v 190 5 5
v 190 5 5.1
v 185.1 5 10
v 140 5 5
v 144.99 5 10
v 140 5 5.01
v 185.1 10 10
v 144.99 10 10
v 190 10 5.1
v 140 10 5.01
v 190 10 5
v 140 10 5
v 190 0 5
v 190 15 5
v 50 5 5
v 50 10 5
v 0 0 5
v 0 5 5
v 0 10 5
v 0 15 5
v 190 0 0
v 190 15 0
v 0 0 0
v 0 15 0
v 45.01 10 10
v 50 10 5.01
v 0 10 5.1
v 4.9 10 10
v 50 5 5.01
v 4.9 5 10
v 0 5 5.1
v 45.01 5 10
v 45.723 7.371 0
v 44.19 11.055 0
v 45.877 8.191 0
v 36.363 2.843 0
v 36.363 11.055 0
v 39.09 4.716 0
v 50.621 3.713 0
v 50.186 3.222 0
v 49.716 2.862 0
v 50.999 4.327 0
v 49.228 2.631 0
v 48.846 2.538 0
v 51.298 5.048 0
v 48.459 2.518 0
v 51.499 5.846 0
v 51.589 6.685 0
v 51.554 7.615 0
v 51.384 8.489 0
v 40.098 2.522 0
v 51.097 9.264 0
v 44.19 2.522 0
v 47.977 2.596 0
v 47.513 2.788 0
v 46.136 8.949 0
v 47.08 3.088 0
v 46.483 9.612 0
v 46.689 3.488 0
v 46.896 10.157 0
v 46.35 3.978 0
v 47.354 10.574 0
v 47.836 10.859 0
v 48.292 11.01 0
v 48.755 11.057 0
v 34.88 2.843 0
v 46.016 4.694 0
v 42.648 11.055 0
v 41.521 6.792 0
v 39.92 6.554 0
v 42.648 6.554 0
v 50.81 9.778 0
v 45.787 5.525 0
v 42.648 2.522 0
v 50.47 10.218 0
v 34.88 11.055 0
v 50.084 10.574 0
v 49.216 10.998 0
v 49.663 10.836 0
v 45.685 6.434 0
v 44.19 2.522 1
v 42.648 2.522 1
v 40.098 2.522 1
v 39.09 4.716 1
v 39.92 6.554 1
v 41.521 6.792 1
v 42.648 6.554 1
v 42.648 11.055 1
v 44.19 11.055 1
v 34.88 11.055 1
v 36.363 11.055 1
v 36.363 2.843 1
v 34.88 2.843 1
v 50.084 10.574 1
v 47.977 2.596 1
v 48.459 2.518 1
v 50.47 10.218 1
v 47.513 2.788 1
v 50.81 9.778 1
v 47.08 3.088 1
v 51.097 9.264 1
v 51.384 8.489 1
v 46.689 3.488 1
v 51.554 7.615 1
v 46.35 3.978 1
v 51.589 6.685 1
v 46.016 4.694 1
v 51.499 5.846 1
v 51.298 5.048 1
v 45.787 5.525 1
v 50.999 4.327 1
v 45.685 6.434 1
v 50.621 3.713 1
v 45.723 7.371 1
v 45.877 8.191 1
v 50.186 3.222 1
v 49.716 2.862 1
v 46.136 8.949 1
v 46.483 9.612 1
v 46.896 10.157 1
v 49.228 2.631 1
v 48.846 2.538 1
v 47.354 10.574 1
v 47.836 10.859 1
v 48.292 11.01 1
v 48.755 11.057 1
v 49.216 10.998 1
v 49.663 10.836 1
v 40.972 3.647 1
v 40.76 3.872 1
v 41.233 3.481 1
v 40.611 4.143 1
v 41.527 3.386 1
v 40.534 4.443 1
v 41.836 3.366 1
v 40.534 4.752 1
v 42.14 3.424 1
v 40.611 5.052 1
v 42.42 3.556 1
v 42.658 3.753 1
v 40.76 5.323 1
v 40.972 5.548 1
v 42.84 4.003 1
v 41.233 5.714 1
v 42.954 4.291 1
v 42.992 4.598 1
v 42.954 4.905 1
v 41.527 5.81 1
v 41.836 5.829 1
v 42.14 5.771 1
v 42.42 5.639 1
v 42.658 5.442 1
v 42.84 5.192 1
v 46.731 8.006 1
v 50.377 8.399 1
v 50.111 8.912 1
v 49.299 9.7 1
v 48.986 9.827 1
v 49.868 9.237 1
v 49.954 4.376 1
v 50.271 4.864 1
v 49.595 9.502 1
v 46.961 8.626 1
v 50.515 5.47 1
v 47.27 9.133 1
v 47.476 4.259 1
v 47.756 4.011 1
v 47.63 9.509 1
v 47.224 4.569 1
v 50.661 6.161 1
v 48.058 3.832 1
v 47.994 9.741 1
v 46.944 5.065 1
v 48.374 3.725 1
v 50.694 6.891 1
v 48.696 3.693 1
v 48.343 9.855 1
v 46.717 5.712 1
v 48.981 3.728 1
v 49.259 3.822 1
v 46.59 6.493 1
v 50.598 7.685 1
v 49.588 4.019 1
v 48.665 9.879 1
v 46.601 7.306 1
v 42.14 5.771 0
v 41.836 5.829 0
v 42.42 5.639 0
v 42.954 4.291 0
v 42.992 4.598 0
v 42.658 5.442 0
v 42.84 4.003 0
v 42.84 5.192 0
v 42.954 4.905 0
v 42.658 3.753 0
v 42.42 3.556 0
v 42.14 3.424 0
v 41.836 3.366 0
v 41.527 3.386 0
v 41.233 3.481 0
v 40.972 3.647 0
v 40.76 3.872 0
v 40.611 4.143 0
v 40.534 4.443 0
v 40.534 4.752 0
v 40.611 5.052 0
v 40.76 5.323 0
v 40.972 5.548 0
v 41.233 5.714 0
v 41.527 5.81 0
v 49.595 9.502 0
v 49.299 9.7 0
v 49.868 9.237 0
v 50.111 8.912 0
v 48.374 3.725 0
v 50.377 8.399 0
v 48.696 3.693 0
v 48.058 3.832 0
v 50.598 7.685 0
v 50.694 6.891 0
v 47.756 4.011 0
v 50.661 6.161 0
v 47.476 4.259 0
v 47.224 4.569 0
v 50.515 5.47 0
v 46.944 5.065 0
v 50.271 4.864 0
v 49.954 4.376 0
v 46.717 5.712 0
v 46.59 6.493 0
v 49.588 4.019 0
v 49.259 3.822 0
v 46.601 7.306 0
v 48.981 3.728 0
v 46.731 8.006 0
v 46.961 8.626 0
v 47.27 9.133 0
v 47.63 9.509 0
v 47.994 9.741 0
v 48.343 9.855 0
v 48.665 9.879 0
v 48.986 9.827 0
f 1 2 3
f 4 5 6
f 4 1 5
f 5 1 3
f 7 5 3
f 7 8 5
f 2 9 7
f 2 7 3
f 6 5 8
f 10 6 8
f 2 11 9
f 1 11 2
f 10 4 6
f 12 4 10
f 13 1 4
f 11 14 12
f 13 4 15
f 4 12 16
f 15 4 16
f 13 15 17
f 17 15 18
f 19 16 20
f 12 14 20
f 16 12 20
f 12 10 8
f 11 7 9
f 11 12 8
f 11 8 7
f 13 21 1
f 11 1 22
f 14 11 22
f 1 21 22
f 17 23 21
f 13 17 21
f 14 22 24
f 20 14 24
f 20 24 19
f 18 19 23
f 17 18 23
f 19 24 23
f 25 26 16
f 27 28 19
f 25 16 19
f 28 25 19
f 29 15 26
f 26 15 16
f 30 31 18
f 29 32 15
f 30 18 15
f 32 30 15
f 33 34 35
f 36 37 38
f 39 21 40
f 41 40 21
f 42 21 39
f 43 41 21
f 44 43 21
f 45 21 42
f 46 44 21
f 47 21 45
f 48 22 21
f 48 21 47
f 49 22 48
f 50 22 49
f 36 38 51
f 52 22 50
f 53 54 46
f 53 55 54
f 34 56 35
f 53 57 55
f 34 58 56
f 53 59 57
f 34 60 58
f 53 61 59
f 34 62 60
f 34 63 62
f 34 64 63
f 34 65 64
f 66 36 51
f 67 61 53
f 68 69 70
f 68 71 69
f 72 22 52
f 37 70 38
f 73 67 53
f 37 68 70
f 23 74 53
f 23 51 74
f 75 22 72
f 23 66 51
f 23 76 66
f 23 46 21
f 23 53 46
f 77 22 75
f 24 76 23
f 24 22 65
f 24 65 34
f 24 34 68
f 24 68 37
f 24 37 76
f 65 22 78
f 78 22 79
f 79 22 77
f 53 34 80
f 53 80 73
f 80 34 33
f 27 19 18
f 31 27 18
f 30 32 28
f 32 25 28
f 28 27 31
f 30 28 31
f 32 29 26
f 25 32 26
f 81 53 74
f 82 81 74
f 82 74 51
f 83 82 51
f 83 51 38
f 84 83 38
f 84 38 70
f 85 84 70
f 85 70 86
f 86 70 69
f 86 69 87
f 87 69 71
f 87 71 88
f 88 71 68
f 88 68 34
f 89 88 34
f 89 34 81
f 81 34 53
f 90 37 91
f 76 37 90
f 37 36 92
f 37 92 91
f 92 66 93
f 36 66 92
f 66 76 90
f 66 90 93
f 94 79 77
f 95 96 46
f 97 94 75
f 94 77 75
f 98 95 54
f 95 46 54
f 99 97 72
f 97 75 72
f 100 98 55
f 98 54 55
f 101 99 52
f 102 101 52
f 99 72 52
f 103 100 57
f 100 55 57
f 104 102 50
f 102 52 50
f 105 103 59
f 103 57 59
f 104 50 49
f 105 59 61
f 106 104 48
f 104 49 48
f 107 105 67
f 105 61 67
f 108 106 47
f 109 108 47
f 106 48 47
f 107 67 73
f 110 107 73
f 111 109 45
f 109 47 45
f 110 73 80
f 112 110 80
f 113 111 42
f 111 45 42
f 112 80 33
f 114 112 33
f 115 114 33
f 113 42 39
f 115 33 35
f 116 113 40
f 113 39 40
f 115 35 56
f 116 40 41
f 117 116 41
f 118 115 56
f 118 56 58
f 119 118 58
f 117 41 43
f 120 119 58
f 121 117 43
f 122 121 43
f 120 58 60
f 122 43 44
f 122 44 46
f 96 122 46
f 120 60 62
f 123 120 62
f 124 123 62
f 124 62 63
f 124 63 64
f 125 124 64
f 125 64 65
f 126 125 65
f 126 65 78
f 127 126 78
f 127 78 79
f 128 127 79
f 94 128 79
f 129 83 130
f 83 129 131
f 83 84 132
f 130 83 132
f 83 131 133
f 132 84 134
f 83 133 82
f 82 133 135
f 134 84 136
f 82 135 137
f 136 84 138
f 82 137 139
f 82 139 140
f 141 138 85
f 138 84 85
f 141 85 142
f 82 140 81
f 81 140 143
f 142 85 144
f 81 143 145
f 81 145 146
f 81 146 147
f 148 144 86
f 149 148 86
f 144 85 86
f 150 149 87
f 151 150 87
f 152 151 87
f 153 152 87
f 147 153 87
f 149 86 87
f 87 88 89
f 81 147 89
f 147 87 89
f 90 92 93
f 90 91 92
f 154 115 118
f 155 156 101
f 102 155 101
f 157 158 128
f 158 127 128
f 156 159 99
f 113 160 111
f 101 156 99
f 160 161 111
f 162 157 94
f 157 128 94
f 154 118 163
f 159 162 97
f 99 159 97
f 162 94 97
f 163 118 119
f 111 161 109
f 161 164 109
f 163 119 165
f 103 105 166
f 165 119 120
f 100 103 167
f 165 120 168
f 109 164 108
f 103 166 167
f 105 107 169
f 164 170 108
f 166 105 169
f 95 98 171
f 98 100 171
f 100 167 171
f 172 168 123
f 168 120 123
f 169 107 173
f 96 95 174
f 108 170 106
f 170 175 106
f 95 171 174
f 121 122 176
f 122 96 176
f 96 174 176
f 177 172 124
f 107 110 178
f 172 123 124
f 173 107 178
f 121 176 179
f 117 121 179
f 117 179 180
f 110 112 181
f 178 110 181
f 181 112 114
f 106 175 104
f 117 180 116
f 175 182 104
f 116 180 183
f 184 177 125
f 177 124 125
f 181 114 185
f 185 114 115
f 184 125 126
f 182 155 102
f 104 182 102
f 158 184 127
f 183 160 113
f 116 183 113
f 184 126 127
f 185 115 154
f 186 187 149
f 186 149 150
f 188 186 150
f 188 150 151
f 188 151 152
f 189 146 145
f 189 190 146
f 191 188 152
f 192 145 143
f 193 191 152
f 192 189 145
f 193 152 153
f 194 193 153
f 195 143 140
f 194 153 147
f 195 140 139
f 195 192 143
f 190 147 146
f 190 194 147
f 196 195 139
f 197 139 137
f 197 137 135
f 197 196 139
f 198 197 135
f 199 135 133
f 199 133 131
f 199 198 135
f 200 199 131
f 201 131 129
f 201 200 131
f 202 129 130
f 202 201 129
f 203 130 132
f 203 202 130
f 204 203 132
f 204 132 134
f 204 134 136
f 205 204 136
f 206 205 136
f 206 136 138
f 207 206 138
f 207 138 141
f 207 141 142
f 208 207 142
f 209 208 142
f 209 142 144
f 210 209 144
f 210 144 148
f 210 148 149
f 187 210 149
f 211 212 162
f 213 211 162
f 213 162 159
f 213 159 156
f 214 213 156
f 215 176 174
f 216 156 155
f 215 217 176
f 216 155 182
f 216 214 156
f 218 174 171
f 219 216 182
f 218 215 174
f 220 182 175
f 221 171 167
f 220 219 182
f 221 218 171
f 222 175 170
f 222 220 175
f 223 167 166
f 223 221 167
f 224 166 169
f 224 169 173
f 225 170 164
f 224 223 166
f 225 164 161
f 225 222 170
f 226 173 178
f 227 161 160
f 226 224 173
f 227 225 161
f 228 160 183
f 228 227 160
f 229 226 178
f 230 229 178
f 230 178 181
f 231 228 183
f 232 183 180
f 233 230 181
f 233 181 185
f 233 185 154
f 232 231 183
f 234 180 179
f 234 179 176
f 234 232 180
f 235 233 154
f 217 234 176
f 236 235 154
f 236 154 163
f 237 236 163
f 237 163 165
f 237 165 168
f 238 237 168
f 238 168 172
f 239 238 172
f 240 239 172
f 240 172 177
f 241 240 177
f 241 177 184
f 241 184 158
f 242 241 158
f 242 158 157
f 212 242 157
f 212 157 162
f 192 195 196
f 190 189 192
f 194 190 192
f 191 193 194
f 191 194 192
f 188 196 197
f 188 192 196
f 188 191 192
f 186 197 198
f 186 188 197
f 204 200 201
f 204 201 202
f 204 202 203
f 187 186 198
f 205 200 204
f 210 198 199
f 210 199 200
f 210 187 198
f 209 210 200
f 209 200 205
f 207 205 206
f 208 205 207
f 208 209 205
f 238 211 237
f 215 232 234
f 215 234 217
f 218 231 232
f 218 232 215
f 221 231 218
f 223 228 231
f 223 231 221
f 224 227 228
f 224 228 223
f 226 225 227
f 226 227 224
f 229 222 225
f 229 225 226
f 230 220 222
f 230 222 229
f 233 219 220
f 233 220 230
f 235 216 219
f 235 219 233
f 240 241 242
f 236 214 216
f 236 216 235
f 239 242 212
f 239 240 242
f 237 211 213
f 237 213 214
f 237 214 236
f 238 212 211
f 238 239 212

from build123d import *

# Parameters (mm, degrees)
SKETCH_W        = 190
SKETCH_H        = 15
PAD_DEPTH       = 5
SKETCH001_W     = 50
SKETCH001_H     = 5
PAD001_DEPTH    = 5
CHAMFER_SIZE    = 4.99
CHAMFER001_SIZE = 4.9
SKETCH002_W     = 1.482422
SKETCH002_H     = 8.21213
SKETCH002_R     = 1.233891
POCKET_DEPTH    = 1


with BuildPart() as part:
    # Sketch → Pad (new body)
    with BuildSketch(Plane.XY):
        with Locations((95, 7.5)):
            Rectangle(SKETCH_W, SKETCH_H)
    extrude(amount=PAD_DEPTH)

    # Sketch001 → Pad001 (new body)
    with BuildSketch(Plane.XY.offset(5)):
        with Locations((25, 7.5)):
            Rectangle(SKETCH001_W, SKETCH001_H)
        with Locations((165, 7.5)):
            Rectangle(SKETCH001_W, SKETCH001_H)
    extrude(amount=PAD001_DEPTH)

    # Chamfer
    chamfer_edges = [part.edges().sort_by_distance(p)[0] for p in [
        (50, 7.5, 10),
        (140, 7.5, 10),
    ]]
    chamfer(chamfer_edges, length=CHAMFER_SIZE)

    # Chamfer001
    chamfer001_edges = [part.edges().sort_by_distance(p)[0] for p in [
        (0, 7.5, 10),
        (190, 7.5, 10),
    ]]
    chamfer(chamfer001_edges, length=CHAMFER001_SIZE)

    # Sketch002 → Pocket (cut)
    with BuildSketch(Plane(origin=(0, 0, 0), x_dir=(1, 0, 0), z_dir=(0, 0, -1))):
        with Locations((35.621345, -6.948972)):
            Rectangle(SKETCH002_W, SKETCH002_H)
        Polygon((42.648026, -2.522297), (40.098263, -2.522297), (39.090214, -4.716282), (39.920372, -6.554486), (41.521393, -6.791675), (42.648026, -6.554486), (42.648026, -11.055037), (44.189751, -11.055037), (44.189751, -2.522297), align=None)
        with Locations((41.758575, -4.597689)):
            Circle(SKETCH002_R, mode=Mode.SUBTRACT)
        with BuildLine():
            add(Edge.make_bspline(
                [(48.459129, -2.517788), (43.348099, -2.730781), (46.170445, -9.027221), (48.99279, -15.323661), (51.281474, -8.814228), (53.570159, -2.304795), (48.459129, -2.517788)],
                knots=[0, 0, 0, 2.094395, 2.094395, 4.18879, 4.18879, 6.283185, 6.283185, 6.283185], degree=2, weights=[1, 0.5, 1, 0.5, 1, 0.5, 1]))
        make_face()
        with BuildLine():
            add(Edge.make_bspline(
                [(48.696312, -3.692728), (45.129949, -3.624372), (46.824186, -8.299076), (48.518424, -12.973781), (50.39055, -8.367432), (52.262675, -3.761084), (48.696312, -3.692728)],
                knots=[0, 0, 0, 2.094395, 2.094395, 4.18879, 4.18879, 6.283185, 6.283185, 6.283185], degree=2, weights=[1, 0.5, 1, 0.5, 1, 0.5, 1]))
        make_face(mode=Mode.SUBTRACT)
    extrude(amount=-POCKET_DEPTH, mode=Mode.SUBTRACT)


solid = part.part
